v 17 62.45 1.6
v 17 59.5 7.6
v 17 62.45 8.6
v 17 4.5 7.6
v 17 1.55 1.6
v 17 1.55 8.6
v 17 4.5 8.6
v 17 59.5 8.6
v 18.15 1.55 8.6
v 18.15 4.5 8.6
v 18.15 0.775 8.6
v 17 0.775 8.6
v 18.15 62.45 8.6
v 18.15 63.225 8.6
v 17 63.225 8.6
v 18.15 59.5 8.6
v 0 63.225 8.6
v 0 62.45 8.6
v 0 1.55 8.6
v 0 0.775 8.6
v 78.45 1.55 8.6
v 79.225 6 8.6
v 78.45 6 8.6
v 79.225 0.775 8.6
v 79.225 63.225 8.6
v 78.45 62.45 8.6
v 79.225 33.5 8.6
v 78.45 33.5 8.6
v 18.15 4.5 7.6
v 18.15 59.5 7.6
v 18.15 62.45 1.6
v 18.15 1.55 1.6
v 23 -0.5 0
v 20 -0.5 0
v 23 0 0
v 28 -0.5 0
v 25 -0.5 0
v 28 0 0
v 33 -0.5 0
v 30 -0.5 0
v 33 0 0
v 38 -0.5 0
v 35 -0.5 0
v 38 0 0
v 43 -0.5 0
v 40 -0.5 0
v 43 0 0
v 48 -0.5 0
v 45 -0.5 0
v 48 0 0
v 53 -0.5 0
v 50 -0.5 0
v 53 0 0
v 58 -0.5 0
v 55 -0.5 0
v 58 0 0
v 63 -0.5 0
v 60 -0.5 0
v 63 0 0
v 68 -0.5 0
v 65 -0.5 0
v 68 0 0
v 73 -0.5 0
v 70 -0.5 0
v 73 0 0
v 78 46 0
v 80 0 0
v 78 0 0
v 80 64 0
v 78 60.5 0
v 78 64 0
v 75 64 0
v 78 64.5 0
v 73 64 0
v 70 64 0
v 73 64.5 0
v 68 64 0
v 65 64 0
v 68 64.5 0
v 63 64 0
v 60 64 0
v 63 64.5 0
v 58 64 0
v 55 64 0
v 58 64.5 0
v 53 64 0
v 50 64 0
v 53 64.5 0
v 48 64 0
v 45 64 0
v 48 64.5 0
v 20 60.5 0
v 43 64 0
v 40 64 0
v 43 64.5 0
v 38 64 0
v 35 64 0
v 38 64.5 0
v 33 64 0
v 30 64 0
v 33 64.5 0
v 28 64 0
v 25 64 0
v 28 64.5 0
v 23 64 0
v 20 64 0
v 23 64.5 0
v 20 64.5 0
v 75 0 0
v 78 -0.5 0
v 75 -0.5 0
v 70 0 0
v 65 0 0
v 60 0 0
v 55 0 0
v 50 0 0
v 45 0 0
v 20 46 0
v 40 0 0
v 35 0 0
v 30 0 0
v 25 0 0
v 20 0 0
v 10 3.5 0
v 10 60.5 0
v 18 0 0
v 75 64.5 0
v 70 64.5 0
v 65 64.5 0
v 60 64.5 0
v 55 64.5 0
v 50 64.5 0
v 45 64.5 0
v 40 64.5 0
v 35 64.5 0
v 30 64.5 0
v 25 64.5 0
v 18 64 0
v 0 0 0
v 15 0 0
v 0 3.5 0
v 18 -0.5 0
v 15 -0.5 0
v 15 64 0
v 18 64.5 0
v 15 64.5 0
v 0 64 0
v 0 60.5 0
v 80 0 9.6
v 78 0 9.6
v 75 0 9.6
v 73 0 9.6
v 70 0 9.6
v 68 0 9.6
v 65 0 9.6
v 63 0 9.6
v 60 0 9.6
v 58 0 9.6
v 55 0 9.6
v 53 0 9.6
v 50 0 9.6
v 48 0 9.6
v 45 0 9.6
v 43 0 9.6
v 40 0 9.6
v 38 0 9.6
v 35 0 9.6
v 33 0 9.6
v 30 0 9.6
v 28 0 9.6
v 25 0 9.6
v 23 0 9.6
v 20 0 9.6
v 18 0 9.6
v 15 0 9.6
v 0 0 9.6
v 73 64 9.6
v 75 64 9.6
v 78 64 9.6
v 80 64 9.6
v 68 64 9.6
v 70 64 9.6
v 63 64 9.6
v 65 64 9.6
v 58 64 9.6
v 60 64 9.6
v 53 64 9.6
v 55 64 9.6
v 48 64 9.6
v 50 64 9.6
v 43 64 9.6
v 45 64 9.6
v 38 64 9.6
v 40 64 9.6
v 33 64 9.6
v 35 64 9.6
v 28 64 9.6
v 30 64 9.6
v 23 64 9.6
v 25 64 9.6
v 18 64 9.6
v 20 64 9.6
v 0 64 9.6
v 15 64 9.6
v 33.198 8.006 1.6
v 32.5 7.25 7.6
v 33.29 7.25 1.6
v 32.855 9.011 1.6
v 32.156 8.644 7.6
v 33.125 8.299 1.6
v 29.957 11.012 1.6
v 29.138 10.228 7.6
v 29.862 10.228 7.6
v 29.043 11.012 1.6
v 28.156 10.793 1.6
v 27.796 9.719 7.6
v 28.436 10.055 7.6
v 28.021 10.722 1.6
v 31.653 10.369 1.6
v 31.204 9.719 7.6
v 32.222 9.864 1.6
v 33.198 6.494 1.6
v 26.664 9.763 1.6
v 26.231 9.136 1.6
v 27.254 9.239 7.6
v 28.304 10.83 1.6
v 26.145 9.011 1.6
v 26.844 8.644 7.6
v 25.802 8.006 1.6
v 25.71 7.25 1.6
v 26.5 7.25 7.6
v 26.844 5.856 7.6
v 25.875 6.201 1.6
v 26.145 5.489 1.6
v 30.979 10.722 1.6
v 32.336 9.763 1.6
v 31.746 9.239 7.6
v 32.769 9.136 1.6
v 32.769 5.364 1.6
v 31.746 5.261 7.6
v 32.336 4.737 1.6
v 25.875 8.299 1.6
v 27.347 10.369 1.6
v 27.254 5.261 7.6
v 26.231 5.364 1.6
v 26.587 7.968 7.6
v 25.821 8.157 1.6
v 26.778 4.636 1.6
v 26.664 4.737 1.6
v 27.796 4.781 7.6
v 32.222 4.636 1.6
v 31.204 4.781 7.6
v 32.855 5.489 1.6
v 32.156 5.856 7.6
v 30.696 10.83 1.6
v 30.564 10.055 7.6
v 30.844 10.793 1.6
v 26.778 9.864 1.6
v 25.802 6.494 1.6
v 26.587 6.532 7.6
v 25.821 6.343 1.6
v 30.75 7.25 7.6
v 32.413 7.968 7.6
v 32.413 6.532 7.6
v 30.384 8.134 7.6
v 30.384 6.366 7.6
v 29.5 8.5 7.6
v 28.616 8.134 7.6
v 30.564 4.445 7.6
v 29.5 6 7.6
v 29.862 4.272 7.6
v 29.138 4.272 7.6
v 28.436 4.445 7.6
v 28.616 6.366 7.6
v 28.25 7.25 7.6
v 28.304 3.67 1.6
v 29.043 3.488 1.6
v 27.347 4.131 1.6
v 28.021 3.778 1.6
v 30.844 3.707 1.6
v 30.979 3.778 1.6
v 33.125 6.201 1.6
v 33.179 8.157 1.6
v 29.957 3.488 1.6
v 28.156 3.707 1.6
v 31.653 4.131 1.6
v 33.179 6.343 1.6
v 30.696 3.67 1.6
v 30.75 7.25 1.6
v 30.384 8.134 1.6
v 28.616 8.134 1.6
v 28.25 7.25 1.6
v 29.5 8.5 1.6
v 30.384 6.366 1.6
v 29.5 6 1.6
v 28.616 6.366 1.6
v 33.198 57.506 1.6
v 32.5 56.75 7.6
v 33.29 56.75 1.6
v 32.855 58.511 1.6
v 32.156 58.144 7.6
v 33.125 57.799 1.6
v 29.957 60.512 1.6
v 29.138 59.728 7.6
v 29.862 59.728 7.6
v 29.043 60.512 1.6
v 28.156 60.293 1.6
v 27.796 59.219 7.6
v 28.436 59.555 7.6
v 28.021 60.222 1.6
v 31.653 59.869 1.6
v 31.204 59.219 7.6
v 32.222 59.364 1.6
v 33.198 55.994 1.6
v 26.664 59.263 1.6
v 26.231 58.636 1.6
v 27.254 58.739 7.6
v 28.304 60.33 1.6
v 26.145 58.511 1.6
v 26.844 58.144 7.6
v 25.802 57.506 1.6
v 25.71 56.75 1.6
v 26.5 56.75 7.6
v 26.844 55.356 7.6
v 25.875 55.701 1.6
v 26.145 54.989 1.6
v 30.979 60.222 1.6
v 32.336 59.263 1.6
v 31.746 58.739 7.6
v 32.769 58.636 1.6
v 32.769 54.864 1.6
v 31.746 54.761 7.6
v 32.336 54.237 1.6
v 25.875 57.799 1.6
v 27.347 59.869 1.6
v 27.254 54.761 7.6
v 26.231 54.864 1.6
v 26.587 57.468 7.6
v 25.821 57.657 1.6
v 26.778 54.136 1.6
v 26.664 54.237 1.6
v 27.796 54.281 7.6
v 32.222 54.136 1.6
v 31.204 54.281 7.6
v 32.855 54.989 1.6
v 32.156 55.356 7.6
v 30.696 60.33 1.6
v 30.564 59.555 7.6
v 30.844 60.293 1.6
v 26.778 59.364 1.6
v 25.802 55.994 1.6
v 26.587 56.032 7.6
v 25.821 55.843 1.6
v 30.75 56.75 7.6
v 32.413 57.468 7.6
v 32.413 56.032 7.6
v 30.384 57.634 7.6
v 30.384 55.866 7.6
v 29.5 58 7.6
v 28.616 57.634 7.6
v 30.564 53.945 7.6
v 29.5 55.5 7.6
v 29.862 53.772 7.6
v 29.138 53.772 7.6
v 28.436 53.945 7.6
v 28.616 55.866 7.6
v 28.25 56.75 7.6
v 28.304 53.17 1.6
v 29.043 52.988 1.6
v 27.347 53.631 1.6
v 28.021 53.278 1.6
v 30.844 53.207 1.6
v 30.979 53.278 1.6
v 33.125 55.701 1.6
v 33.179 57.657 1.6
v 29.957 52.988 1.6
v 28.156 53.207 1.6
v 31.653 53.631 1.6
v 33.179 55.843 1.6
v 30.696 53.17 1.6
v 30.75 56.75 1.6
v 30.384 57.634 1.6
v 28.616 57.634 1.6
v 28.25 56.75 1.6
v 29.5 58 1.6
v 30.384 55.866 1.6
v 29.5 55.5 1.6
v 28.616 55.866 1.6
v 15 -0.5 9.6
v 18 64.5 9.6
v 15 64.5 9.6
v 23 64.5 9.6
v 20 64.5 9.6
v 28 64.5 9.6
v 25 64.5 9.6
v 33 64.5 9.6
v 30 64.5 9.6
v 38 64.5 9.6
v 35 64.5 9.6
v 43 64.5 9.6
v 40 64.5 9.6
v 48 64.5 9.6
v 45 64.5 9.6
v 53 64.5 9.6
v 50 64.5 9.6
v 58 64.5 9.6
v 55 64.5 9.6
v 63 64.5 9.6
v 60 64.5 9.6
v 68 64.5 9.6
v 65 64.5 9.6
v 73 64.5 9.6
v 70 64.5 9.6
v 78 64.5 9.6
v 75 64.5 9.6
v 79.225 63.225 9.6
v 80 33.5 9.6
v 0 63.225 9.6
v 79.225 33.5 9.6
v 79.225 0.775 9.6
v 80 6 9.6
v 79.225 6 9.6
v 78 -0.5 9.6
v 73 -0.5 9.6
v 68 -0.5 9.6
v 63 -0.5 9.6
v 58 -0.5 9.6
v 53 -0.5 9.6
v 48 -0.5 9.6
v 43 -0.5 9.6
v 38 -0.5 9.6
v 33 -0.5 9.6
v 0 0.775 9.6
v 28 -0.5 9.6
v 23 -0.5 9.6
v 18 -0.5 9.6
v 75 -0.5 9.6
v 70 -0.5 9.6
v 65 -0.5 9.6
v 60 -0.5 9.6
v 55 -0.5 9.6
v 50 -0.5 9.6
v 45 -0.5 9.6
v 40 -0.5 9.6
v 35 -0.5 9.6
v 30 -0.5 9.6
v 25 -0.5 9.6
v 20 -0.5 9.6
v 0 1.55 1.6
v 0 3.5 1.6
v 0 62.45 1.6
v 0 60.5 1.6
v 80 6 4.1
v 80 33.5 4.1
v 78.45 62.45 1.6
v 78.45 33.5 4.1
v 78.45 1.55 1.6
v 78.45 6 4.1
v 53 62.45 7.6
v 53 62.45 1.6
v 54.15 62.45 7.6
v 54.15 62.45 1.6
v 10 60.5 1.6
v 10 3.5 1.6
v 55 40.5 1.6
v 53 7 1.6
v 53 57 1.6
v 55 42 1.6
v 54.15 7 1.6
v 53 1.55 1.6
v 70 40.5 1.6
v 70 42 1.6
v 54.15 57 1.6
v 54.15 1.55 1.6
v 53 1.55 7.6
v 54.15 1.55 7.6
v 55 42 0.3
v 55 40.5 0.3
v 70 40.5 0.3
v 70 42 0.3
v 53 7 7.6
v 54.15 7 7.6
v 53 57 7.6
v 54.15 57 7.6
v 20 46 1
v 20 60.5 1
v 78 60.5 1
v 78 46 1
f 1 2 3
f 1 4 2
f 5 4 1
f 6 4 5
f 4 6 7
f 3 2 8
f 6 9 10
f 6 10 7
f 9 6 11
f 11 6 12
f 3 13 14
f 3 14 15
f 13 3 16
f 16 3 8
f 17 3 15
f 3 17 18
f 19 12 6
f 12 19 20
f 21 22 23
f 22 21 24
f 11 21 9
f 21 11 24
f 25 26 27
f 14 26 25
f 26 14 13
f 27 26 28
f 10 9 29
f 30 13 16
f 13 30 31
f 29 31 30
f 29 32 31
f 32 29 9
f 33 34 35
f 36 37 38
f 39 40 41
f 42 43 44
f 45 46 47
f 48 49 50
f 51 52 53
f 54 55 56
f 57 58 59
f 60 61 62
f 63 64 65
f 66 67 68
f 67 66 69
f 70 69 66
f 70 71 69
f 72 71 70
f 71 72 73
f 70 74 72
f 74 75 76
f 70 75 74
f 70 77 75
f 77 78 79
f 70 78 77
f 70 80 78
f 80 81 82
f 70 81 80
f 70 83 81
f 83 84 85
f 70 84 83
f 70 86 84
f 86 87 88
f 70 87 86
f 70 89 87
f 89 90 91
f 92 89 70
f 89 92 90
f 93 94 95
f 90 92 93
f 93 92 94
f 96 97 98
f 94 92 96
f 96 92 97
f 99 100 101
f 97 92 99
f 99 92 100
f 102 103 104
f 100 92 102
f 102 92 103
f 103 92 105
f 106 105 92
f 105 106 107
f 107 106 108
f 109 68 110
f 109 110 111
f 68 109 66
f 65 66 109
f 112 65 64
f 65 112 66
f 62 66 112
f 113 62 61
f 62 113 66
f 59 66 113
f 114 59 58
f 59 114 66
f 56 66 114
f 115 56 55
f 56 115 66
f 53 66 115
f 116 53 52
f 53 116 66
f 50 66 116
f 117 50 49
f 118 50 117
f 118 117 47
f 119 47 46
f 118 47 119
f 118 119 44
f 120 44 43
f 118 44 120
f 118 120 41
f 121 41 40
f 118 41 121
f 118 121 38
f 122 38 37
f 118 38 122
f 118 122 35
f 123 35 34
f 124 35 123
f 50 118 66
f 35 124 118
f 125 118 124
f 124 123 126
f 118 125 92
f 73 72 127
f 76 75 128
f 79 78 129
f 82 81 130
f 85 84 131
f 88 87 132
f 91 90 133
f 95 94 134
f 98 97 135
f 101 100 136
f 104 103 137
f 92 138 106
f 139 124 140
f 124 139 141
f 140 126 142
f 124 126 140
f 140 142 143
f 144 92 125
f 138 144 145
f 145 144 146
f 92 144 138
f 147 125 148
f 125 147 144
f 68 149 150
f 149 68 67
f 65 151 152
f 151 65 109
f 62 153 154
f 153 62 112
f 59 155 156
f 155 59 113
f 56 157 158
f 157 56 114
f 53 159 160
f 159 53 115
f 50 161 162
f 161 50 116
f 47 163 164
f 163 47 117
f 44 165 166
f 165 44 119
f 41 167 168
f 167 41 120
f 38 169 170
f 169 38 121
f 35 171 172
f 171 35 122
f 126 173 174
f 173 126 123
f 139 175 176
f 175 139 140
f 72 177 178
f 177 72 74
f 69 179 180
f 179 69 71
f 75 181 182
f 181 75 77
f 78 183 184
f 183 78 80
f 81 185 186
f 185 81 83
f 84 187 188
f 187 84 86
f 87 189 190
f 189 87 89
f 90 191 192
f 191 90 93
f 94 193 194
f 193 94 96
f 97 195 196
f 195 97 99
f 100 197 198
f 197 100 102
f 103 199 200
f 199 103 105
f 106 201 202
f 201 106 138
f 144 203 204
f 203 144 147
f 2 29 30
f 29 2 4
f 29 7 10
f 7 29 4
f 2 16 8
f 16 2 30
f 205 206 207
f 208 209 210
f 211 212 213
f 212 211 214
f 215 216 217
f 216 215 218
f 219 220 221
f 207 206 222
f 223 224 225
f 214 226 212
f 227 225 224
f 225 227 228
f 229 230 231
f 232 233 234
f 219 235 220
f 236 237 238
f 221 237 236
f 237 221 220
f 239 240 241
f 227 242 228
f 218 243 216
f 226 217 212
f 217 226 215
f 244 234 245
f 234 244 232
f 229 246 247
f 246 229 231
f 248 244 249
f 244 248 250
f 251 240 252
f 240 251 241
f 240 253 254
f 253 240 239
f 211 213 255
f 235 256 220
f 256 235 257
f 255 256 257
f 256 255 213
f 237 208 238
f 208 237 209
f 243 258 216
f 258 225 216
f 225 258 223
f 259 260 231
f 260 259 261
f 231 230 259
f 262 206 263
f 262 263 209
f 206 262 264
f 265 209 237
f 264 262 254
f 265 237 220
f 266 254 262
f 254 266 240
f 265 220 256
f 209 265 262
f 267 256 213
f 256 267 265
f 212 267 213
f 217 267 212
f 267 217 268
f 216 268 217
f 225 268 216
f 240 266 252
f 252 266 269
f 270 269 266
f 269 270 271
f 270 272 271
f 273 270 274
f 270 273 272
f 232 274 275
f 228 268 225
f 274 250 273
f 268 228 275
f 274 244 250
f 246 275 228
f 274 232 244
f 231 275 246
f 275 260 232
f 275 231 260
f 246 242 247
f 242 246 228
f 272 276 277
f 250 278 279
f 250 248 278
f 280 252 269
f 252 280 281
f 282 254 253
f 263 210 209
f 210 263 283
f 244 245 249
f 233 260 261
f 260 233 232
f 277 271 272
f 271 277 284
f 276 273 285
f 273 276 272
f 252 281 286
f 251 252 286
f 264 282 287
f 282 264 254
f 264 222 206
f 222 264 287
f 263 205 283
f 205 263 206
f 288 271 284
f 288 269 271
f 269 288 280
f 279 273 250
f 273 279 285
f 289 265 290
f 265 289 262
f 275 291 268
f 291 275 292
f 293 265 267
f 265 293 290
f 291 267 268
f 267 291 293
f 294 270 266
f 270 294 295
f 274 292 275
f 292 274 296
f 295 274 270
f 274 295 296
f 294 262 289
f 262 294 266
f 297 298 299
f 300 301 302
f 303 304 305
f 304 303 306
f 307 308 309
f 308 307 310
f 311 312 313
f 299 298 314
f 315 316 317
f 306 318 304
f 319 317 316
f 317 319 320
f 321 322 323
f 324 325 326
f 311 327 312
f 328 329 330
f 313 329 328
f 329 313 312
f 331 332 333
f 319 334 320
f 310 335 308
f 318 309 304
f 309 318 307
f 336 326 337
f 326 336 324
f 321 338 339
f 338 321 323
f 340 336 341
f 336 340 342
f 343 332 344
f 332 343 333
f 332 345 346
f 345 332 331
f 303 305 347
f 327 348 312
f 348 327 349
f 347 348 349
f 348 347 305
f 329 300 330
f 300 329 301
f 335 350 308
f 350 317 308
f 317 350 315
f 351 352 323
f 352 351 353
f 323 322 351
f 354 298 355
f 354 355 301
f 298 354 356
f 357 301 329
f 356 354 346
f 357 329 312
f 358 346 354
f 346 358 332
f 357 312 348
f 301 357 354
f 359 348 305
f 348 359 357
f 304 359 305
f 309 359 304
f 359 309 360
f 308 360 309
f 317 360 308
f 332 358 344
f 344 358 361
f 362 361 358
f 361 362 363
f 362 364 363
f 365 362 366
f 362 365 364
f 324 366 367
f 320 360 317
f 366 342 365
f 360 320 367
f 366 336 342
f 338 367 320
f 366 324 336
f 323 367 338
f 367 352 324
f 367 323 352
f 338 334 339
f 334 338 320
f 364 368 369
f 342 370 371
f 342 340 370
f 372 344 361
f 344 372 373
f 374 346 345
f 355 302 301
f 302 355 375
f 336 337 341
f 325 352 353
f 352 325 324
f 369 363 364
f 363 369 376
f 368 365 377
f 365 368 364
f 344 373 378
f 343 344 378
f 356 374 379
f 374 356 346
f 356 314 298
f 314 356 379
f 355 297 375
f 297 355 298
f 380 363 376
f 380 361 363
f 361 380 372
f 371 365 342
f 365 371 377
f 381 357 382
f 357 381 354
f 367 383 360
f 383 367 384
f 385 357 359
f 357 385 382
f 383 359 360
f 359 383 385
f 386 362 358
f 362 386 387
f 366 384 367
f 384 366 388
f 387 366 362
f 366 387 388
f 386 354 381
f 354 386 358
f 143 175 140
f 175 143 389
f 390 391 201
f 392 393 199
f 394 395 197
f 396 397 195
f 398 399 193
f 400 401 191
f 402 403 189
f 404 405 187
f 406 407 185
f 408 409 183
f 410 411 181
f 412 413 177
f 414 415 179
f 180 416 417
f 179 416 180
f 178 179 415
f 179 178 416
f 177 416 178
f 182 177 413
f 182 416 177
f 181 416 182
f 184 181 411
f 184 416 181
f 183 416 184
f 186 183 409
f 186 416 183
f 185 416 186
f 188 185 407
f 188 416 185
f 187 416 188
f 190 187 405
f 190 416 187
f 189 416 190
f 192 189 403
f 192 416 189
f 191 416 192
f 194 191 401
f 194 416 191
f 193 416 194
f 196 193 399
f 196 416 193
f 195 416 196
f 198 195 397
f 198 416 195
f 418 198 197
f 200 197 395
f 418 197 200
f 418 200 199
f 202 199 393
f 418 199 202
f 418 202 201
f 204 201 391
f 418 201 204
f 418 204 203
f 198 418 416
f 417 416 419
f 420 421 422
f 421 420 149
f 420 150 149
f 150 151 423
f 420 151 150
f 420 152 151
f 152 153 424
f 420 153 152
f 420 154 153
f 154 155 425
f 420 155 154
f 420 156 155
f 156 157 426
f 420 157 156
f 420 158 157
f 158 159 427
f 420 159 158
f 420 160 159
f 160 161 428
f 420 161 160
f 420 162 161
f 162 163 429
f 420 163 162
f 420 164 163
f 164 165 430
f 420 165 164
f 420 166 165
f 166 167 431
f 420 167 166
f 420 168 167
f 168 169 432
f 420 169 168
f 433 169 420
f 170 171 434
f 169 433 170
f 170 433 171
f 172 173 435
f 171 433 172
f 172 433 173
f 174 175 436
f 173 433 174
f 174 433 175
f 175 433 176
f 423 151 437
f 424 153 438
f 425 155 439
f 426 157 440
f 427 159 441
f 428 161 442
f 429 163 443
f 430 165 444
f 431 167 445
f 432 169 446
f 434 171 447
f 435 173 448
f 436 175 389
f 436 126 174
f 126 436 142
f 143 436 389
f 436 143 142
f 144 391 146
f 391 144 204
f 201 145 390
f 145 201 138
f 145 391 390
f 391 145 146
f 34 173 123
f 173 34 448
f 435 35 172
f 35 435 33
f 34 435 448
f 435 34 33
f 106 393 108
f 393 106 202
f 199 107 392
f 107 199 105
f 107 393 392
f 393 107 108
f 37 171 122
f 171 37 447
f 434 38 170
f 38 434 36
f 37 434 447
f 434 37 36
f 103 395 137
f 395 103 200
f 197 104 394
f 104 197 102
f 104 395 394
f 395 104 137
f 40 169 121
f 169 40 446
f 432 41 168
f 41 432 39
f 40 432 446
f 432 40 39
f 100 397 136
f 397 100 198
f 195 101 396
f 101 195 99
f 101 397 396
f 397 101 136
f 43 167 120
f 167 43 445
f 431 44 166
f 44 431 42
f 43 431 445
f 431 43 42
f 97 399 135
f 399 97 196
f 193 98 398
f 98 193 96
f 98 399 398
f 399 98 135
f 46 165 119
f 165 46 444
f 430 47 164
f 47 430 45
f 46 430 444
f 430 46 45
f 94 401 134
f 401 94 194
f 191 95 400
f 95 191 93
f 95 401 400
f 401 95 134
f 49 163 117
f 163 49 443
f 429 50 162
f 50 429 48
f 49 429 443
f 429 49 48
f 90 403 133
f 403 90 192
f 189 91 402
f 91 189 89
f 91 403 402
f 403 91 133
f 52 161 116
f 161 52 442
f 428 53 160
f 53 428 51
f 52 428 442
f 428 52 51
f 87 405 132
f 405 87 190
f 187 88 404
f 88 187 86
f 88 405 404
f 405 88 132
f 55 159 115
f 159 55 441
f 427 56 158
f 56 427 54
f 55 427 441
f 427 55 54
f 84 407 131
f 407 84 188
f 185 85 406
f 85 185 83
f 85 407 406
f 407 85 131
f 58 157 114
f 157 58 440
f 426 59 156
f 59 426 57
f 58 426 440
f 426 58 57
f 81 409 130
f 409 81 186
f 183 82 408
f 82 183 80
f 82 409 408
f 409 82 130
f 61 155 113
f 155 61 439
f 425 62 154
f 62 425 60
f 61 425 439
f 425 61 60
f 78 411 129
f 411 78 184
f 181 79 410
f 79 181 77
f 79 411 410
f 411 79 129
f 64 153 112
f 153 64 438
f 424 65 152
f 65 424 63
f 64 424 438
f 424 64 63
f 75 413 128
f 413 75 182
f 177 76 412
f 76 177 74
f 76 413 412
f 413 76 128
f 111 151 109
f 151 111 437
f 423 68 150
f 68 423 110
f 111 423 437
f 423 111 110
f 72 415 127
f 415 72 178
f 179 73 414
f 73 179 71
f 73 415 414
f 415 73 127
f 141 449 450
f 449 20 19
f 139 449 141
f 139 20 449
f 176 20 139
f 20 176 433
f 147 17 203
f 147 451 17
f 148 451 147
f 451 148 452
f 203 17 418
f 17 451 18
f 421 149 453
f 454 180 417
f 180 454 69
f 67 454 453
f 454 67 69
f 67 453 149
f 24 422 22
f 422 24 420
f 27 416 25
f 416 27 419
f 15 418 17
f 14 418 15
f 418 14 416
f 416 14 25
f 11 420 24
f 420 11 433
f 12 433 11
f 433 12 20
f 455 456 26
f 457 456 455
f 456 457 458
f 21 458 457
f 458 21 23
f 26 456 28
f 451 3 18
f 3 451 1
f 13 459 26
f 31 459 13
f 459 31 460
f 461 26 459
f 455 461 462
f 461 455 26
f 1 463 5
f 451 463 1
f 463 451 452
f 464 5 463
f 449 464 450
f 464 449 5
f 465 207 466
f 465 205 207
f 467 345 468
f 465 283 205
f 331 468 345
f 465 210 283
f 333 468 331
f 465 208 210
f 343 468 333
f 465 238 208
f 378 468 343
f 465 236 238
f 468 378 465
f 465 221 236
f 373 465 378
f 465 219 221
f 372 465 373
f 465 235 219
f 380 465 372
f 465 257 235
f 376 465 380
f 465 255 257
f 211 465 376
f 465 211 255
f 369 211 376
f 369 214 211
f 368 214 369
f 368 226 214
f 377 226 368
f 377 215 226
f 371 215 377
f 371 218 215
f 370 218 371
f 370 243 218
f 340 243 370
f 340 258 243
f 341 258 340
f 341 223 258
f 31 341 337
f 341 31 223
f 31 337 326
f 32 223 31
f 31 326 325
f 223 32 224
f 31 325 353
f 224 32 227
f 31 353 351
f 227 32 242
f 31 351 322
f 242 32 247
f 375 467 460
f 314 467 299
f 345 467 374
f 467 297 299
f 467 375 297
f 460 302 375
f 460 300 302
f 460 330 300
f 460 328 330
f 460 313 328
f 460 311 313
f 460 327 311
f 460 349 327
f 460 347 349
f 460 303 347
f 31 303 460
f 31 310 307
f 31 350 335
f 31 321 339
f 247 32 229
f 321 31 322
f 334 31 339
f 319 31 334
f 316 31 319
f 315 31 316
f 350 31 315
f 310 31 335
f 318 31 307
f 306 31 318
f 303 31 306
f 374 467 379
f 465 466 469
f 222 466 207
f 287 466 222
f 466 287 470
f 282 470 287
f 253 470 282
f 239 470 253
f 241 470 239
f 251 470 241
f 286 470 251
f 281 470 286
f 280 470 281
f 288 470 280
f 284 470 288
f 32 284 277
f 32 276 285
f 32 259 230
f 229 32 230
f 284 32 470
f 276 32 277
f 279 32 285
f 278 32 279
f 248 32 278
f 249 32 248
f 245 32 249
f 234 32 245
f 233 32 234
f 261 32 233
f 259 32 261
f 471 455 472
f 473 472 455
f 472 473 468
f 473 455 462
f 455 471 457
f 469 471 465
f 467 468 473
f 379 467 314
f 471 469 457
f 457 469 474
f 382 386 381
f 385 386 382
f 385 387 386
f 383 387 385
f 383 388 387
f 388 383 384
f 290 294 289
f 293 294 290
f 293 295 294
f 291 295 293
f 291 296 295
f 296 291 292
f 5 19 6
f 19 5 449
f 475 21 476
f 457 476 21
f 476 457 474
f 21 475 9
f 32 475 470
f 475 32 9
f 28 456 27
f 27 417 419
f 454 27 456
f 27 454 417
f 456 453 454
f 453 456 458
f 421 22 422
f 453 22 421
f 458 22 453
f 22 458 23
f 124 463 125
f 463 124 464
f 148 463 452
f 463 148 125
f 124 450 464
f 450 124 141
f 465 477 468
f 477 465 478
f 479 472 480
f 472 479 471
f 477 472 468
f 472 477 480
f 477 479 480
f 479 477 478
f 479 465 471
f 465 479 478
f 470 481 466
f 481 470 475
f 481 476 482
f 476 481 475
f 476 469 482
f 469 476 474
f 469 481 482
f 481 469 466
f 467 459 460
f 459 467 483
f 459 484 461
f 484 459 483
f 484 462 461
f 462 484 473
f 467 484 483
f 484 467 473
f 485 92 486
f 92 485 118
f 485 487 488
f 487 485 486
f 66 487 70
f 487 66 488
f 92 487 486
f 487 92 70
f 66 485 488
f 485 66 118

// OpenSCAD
/* Ultimate Cart shell
   (c) R.Edwards 2017
*/

ridge_width = 0.5;
cart_length=80;
cart_width=65 - (ridge_width*2);
cart_height=9.6;
screw_sep = 49.5;
front_thickness = 1.6;
sides_thickness = 1.6 - 0.05;
support_thickness = 1.2 - 0.05;
support_height = 7.6;
rim_height = 1;
logo_width = 14.5;
logo_height = 58;

difference() {
    union() {
        difference() {
            // main shell
            cube([cart_length, cart_width, cart_height]);
            // rims
            translate([0, sides_thickness/2, cart_height-rim_height])
                cube([cart_length-sides_thickness/2,
                    cart_width-sides_thickness, rim_height]);
            // make hollow
            translate([0, sides_thickness, front_thickness])
                cube([cart_length-sides_thickness,
                    cart_width-sides_thickness*2,
                    cart_height-front_thickness]);
            // cutout sd card slot
            translate([cart_length-sides_thickness, 6, cart_height-5.5])
                cube([sides_thickness, 27.5, 5.5]);
            // cutout cart port
            translate([0, (cart_width-57)/2, 0])
                cube([10, 57, cart_height]);
            // cutout led shine through
            translate([55, 40.5, 0.3])
                cube([15, 1.5, front_thickness-0.3]);
        }    
        // pcb supports
        difference() {
            translate([17, 0, 0])
                cube([support_thickness, cart_width, cart_height-rim_height]);
            translate([17, (cart_width-55)/2, support_height])
                cube([support_thickness, 55, cart_height-support_height]);
        }
        translate([53, 0, 0])
            cube([support_thickness, 7, support_height]);
        translate([53, cart_width-7, 0])
            cube([support_thickness, 7, support_height]);
        // screw holes
        translate([29.5, (cart_width-screw_sep)/2, 0])
            difference() {
                cylinder(h = support_height, r1 = 4, r2 = 3,  $fs = 1);
                cylinder(h = support_height, r1 = 1.25, r2 = 1.25,  $fs = 1);
            }
        translate([29.5, cart_width-(cart_width-screw_sep)/2, 0])
            difference() {
                cylinder(h = support_height, r1 = 4, r2 = 3,  $fs = 1);
                cylinder(h = support_height, r1 = 1.25, r2 = 1.25,  $fs = 1);
            }
        // ridges
        for (i = [15: 5: cart_length-5])
            union() {
                translate([i, -ridge_width, 0])
                    cube([3, ridge_width, cart_height]);
                translate([i, cart_width, 0])
                    cube([3, ridge_width, cart_height]);
            }
    }
    // logo space
    translate([cart_length-logo_height-2, cart_width-logo_width-3.5, 0])
        cube([logo_height, logo_width, 1]);
}
